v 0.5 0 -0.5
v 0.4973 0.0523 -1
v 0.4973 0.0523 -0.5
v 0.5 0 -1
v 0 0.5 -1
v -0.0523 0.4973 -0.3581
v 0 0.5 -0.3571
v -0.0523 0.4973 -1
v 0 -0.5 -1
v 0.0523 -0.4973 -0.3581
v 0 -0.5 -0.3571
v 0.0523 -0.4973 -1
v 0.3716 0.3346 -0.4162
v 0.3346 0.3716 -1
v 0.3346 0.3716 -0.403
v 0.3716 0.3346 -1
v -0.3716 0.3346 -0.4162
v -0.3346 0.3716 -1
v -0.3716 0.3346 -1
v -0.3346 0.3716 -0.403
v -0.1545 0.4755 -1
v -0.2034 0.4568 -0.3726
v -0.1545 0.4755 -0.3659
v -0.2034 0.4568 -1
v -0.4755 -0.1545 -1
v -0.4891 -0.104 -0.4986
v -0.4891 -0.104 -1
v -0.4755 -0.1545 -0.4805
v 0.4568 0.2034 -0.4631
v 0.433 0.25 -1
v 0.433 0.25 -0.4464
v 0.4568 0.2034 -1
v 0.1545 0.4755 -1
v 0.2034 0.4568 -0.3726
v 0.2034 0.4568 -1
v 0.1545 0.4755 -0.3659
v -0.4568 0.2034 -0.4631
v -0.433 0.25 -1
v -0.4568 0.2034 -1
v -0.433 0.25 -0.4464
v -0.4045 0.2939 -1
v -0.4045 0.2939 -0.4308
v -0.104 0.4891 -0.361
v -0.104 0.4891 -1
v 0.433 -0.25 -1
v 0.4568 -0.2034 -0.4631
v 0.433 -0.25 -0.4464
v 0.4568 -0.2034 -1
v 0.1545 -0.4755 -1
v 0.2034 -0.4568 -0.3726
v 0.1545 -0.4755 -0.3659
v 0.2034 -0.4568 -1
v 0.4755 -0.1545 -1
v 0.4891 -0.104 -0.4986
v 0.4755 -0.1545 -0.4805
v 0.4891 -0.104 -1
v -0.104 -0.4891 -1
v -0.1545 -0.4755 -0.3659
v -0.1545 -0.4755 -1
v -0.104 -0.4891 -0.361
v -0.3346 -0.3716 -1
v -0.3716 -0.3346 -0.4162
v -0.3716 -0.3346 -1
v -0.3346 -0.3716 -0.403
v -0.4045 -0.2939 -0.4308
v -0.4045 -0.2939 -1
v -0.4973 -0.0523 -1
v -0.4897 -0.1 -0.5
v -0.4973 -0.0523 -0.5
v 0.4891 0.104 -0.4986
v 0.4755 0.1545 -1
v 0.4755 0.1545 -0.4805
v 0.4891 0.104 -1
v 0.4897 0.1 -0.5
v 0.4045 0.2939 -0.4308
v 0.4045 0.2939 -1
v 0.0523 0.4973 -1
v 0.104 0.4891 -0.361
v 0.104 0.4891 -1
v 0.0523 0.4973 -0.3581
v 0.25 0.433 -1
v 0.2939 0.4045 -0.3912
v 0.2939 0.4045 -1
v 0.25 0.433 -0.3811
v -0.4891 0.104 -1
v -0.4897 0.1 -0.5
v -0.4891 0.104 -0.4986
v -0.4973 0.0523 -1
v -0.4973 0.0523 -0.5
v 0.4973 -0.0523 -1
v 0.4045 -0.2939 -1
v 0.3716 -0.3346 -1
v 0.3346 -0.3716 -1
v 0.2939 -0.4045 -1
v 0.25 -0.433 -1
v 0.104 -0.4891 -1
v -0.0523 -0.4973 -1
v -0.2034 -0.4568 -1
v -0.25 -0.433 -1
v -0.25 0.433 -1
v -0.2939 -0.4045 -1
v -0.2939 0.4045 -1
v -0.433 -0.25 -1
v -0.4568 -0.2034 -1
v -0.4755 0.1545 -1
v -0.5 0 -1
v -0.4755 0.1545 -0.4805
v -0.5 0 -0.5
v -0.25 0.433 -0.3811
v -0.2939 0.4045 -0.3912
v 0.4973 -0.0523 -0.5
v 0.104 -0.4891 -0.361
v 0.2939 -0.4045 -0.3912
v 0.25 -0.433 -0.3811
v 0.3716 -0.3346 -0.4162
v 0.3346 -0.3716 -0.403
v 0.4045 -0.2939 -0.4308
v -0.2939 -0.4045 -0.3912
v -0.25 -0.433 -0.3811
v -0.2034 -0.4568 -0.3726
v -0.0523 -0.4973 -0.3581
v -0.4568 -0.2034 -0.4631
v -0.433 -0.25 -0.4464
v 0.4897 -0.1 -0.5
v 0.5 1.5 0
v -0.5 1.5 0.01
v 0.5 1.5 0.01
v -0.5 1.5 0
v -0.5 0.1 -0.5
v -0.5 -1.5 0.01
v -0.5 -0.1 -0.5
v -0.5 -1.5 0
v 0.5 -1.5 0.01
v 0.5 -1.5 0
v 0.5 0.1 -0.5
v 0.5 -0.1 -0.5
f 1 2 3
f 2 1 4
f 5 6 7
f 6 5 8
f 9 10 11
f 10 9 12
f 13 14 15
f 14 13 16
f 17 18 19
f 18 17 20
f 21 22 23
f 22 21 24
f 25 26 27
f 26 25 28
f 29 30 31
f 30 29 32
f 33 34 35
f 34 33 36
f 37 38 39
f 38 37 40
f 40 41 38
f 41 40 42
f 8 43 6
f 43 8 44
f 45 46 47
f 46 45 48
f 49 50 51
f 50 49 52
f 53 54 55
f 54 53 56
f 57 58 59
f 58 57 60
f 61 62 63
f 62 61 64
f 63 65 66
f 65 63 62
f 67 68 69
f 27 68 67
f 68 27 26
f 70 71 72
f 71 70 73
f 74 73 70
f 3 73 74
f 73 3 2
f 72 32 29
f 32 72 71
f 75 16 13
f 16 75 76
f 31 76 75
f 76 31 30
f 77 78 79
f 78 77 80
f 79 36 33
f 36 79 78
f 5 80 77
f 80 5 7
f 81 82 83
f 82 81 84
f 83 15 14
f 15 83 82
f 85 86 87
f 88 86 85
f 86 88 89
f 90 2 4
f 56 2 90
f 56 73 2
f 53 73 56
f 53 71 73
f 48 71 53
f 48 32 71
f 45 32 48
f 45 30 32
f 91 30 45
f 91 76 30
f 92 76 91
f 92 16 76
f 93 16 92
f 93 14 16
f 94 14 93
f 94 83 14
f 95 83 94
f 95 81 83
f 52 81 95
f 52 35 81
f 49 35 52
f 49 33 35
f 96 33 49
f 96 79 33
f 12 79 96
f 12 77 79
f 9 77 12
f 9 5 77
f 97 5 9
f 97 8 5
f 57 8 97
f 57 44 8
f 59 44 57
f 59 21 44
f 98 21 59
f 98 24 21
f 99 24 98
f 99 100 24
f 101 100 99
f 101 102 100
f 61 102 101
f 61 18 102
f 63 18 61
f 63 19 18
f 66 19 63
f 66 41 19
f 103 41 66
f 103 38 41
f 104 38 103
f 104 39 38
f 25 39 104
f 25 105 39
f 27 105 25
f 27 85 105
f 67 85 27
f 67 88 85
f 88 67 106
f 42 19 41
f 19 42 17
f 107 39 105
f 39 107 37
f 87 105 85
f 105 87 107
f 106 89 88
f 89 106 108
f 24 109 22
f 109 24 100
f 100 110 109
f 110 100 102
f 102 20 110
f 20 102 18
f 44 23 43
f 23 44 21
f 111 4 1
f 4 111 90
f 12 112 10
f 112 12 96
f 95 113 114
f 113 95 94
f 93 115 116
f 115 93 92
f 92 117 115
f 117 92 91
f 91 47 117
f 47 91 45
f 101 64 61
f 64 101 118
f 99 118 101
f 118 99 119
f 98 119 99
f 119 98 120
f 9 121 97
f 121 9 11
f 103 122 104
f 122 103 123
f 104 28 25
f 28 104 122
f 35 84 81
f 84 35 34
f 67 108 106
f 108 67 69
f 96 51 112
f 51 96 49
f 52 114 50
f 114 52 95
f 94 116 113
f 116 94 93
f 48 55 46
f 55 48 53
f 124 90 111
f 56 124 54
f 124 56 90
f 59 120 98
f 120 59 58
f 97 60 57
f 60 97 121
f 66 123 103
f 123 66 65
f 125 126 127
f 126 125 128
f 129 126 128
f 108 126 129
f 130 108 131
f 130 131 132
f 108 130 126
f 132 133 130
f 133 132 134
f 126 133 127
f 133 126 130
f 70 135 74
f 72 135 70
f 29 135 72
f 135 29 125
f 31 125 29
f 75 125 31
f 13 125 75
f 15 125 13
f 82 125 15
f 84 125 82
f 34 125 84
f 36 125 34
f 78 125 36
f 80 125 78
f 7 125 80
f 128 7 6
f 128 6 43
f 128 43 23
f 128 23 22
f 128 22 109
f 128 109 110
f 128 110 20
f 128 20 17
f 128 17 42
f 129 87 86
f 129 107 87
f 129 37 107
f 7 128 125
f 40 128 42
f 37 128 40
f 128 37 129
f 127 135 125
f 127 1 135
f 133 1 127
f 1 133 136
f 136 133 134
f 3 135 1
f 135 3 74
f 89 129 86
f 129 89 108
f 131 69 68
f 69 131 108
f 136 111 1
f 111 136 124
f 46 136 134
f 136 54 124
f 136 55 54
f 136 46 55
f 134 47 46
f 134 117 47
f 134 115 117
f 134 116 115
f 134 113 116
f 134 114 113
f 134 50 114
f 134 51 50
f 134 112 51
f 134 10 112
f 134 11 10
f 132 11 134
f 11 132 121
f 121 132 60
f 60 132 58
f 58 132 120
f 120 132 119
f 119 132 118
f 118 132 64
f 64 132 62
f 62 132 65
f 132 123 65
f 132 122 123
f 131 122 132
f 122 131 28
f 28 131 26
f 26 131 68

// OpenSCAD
//----------------------------------------------
// T Support 
// Size must height = 1 mm 
//----------------------------------------------
$fn=60;

translate([-0.5,-0.5,-0.5]) 
union() {
    translate([0.5,0.5,0.0]) cylinder( h=1, r=0.5 , center = true);
    translate([1,0.5,0.5]) rotate([-90, 0, 90]) {
			linear_extrude(height=1) {
				polygon(points=[[-1.5,0],[-1.5,-0.01],[1.5,-0.01],[1.5,0],[-1.5,0],[1.5,0],[0.1,0.5],[-0.1,0.5]], convexity=1);
			}        
    }
}
